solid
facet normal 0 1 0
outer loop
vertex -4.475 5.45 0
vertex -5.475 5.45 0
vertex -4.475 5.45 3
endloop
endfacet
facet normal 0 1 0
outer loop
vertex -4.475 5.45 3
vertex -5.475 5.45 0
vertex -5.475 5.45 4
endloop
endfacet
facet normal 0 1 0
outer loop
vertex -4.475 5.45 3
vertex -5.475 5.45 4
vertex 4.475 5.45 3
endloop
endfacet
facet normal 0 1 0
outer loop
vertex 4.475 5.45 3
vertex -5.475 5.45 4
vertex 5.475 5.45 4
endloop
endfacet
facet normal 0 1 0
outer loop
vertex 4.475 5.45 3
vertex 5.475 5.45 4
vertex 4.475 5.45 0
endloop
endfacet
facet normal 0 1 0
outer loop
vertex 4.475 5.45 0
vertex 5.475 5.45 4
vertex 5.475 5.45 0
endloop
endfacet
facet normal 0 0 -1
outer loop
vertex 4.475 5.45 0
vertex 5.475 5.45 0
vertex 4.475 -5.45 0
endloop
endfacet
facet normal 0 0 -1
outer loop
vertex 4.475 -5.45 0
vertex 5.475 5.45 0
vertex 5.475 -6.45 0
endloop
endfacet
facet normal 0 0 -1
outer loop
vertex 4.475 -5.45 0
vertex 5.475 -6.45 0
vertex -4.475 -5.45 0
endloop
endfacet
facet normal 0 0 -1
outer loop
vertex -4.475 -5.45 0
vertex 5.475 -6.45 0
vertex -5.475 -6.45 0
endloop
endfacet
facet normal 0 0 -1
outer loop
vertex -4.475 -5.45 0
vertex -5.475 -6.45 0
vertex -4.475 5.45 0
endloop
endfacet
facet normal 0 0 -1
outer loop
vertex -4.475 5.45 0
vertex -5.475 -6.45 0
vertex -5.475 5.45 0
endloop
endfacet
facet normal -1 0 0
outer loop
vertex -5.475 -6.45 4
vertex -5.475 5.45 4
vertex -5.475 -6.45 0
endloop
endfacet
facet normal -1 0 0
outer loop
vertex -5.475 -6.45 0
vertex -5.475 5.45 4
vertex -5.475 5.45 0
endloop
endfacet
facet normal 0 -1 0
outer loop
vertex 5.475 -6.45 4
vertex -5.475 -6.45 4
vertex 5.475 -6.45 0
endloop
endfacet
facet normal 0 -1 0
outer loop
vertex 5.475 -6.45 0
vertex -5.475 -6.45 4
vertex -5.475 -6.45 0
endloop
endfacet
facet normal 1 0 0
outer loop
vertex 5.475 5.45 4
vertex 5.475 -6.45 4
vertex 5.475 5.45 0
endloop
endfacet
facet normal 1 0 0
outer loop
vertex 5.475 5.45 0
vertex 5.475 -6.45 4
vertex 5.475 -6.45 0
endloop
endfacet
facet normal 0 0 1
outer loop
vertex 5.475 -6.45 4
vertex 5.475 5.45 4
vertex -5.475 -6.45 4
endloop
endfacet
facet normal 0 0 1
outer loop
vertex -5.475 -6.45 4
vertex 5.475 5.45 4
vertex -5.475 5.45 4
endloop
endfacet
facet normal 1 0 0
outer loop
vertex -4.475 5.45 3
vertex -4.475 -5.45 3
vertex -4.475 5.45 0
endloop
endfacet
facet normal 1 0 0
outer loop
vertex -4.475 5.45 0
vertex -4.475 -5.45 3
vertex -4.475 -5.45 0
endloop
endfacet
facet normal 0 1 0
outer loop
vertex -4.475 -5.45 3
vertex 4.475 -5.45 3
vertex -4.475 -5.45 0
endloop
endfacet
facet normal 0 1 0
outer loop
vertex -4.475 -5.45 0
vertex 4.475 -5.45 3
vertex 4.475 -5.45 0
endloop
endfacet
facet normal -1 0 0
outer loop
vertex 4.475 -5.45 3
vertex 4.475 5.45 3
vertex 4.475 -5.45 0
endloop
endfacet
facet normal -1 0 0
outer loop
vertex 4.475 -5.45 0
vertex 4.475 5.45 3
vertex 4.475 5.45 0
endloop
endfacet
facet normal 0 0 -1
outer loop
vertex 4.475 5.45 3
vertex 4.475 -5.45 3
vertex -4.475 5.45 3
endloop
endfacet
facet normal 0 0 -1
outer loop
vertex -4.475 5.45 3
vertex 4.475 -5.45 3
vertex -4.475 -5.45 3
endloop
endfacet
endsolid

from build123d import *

# Parameters (mm, degrees)
SKETCH_2_W          = 10.95
SKETCH_2_H          = 11.9
EXTRUDE_2_DEPTH     = 4
SKETCH_1_W          = 8.95
SKETCH_1_H          = 10.9
CUT_EXTRUDE_1_DEPTH = 3


with BuildPart() as part:
    # 草圖2 → 填料-伸長2 (new body)
    with BuildSketch(Plane.XY):
        with Locations((0, -0.5)):
            Rectangle(SKETCH_2_W, SKETCH_2_H)
    extrude(amount=EXTRUDE_2_DEPTH)

    # 草圖1 → 除料-伸長1 (cut)
    with BuildSketch(Plane.XY):
        Rectangle(SKETCH_1_W, SKETCH_1_H)
    extrude(amount=CUT_EXTRUDE_1_DEPTH, mode=Mode.SUBTRACT)


solid = part.part
